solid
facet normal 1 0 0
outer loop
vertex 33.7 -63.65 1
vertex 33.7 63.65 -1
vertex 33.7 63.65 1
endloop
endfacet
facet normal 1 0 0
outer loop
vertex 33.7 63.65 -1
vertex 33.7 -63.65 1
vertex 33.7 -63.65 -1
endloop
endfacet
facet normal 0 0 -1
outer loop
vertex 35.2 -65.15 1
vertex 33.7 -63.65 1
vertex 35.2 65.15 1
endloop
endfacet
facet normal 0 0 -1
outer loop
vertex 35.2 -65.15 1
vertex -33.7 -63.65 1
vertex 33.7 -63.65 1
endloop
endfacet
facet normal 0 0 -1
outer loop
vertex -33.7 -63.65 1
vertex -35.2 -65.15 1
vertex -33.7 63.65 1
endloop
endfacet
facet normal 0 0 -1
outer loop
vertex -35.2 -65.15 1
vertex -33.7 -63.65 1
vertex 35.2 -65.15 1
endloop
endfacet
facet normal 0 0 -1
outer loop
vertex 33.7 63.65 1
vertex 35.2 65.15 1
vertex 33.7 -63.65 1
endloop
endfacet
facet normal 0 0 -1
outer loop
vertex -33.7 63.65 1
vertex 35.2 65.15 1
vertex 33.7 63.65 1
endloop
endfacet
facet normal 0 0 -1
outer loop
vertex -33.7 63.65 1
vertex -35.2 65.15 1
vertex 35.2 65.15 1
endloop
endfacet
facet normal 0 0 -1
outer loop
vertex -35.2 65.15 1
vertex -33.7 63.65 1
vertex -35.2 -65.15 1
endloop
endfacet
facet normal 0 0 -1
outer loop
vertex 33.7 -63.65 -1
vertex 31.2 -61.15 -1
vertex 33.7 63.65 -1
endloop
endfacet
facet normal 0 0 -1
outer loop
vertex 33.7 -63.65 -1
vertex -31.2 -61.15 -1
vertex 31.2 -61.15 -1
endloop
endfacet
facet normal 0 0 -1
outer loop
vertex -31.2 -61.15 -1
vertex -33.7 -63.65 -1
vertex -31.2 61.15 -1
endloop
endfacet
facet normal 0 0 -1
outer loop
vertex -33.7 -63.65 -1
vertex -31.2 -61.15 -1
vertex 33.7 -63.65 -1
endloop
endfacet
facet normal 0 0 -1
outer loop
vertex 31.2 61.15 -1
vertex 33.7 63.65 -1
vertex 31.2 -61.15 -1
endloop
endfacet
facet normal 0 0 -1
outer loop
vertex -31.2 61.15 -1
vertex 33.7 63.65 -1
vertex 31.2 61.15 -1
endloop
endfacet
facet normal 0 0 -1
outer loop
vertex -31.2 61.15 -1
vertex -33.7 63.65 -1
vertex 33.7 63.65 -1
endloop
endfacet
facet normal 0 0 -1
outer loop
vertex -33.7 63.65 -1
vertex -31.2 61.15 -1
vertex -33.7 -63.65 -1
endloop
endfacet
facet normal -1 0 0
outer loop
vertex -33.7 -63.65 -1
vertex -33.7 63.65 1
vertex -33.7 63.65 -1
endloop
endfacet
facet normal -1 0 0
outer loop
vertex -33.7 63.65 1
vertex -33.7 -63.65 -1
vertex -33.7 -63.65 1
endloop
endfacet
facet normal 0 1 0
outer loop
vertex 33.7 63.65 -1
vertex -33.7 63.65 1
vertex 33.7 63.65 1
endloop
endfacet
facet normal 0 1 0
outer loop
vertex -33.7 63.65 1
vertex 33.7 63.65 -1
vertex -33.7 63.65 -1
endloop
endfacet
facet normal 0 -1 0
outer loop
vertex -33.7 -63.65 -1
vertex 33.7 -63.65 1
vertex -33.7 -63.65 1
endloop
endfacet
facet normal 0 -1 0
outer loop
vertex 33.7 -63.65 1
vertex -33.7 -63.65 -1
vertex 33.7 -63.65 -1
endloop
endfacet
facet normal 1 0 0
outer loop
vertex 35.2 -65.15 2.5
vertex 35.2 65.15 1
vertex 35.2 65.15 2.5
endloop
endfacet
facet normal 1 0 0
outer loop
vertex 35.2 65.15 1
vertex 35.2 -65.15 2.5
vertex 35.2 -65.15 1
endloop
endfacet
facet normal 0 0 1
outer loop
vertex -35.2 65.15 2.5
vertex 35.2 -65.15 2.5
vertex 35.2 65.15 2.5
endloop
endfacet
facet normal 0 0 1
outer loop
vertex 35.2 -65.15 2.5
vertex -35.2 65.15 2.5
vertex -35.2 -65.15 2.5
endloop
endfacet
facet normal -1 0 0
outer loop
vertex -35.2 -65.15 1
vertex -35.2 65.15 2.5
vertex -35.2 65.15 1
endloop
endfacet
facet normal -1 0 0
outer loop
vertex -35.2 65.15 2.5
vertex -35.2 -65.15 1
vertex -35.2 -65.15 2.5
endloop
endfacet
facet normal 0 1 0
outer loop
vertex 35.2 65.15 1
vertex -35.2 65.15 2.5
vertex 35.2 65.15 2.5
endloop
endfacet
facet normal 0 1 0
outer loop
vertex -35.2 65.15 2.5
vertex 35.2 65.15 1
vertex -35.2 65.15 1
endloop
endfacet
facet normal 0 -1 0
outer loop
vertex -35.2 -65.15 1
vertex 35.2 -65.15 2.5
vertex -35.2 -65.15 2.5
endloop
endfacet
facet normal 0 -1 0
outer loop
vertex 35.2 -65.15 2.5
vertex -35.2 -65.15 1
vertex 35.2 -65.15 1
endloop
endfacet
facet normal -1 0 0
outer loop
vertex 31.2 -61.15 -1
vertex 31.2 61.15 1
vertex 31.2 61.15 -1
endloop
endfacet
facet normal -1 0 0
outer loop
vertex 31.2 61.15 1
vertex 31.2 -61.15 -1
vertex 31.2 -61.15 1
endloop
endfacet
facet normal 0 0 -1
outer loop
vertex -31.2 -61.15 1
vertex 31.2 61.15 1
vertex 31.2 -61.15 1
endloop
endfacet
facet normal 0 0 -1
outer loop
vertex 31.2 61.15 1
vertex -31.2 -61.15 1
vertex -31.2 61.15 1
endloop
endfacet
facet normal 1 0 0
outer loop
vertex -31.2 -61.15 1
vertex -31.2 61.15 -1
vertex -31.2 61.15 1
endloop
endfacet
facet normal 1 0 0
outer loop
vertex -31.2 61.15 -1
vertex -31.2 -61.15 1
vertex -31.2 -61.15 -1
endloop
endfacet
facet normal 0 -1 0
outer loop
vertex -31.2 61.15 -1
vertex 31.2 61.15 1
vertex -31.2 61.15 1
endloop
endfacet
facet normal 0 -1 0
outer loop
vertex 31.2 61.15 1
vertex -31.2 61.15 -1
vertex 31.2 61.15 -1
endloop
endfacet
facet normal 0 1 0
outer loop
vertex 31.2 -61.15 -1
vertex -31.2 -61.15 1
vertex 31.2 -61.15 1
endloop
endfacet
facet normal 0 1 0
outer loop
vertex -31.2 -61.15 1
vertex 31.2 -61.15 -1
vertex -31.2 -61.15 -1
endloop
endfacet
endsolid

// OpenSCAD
wall_width = 1.5;

//outer_x = 69;
inner_x = 67.4;

//outer_y = 129;
inner_y = 127.3;

//outer_z = 2;
inner_z = 2;

inner_frame_width = 5;

//vent_width = 1;

cut_cube_width = 1000;

module top_case(){
    cube([inner_x,inner_y,inner_z],center=true);
 
    translate([0, 0, inner_z / 2 + wall_width / 2]) {
        cube([inner_x + 2 * wall_width, inner_y + 2* wall_width, wall_width],true);
    }
}

module inner_frame_cut() {
    cube([inner_x - inner_frame_width, inner_y - inner_frame_width,inner_z],center=true);


}

module controller_lid() {
    difference() {
        top_case();
        inner_frame_cut();
    }
}

difference() {   
    controller_lid();
//    translate([0,-cut_cube_width/2,-cut_cube_width/2]) cube([cut_cube_width,cut_cube_width,cut_cube_width], center=false);
}
//module top_case(){
//cube([outer_x,outer_y,outer_z],true);
// 
//translate([0, 0, outer_z]) {
//      cube([inner_x,inner_y,inner_z],true);
// }
//
//
//}

//module vents(){
//    cube([outer_x * 0.6, vent_width, 2 * (outer_z + inner_z)],true);
//    for (i = [-4 : 2 : 4]){
//          translate([0,i]){
//        cube([outer_x * 0.6, vent_width, 2 * (outer_z + inner_z)],true);
//    }   
//    }
//
//}

//difference(){
//    top_case();
//    vents();
//}
